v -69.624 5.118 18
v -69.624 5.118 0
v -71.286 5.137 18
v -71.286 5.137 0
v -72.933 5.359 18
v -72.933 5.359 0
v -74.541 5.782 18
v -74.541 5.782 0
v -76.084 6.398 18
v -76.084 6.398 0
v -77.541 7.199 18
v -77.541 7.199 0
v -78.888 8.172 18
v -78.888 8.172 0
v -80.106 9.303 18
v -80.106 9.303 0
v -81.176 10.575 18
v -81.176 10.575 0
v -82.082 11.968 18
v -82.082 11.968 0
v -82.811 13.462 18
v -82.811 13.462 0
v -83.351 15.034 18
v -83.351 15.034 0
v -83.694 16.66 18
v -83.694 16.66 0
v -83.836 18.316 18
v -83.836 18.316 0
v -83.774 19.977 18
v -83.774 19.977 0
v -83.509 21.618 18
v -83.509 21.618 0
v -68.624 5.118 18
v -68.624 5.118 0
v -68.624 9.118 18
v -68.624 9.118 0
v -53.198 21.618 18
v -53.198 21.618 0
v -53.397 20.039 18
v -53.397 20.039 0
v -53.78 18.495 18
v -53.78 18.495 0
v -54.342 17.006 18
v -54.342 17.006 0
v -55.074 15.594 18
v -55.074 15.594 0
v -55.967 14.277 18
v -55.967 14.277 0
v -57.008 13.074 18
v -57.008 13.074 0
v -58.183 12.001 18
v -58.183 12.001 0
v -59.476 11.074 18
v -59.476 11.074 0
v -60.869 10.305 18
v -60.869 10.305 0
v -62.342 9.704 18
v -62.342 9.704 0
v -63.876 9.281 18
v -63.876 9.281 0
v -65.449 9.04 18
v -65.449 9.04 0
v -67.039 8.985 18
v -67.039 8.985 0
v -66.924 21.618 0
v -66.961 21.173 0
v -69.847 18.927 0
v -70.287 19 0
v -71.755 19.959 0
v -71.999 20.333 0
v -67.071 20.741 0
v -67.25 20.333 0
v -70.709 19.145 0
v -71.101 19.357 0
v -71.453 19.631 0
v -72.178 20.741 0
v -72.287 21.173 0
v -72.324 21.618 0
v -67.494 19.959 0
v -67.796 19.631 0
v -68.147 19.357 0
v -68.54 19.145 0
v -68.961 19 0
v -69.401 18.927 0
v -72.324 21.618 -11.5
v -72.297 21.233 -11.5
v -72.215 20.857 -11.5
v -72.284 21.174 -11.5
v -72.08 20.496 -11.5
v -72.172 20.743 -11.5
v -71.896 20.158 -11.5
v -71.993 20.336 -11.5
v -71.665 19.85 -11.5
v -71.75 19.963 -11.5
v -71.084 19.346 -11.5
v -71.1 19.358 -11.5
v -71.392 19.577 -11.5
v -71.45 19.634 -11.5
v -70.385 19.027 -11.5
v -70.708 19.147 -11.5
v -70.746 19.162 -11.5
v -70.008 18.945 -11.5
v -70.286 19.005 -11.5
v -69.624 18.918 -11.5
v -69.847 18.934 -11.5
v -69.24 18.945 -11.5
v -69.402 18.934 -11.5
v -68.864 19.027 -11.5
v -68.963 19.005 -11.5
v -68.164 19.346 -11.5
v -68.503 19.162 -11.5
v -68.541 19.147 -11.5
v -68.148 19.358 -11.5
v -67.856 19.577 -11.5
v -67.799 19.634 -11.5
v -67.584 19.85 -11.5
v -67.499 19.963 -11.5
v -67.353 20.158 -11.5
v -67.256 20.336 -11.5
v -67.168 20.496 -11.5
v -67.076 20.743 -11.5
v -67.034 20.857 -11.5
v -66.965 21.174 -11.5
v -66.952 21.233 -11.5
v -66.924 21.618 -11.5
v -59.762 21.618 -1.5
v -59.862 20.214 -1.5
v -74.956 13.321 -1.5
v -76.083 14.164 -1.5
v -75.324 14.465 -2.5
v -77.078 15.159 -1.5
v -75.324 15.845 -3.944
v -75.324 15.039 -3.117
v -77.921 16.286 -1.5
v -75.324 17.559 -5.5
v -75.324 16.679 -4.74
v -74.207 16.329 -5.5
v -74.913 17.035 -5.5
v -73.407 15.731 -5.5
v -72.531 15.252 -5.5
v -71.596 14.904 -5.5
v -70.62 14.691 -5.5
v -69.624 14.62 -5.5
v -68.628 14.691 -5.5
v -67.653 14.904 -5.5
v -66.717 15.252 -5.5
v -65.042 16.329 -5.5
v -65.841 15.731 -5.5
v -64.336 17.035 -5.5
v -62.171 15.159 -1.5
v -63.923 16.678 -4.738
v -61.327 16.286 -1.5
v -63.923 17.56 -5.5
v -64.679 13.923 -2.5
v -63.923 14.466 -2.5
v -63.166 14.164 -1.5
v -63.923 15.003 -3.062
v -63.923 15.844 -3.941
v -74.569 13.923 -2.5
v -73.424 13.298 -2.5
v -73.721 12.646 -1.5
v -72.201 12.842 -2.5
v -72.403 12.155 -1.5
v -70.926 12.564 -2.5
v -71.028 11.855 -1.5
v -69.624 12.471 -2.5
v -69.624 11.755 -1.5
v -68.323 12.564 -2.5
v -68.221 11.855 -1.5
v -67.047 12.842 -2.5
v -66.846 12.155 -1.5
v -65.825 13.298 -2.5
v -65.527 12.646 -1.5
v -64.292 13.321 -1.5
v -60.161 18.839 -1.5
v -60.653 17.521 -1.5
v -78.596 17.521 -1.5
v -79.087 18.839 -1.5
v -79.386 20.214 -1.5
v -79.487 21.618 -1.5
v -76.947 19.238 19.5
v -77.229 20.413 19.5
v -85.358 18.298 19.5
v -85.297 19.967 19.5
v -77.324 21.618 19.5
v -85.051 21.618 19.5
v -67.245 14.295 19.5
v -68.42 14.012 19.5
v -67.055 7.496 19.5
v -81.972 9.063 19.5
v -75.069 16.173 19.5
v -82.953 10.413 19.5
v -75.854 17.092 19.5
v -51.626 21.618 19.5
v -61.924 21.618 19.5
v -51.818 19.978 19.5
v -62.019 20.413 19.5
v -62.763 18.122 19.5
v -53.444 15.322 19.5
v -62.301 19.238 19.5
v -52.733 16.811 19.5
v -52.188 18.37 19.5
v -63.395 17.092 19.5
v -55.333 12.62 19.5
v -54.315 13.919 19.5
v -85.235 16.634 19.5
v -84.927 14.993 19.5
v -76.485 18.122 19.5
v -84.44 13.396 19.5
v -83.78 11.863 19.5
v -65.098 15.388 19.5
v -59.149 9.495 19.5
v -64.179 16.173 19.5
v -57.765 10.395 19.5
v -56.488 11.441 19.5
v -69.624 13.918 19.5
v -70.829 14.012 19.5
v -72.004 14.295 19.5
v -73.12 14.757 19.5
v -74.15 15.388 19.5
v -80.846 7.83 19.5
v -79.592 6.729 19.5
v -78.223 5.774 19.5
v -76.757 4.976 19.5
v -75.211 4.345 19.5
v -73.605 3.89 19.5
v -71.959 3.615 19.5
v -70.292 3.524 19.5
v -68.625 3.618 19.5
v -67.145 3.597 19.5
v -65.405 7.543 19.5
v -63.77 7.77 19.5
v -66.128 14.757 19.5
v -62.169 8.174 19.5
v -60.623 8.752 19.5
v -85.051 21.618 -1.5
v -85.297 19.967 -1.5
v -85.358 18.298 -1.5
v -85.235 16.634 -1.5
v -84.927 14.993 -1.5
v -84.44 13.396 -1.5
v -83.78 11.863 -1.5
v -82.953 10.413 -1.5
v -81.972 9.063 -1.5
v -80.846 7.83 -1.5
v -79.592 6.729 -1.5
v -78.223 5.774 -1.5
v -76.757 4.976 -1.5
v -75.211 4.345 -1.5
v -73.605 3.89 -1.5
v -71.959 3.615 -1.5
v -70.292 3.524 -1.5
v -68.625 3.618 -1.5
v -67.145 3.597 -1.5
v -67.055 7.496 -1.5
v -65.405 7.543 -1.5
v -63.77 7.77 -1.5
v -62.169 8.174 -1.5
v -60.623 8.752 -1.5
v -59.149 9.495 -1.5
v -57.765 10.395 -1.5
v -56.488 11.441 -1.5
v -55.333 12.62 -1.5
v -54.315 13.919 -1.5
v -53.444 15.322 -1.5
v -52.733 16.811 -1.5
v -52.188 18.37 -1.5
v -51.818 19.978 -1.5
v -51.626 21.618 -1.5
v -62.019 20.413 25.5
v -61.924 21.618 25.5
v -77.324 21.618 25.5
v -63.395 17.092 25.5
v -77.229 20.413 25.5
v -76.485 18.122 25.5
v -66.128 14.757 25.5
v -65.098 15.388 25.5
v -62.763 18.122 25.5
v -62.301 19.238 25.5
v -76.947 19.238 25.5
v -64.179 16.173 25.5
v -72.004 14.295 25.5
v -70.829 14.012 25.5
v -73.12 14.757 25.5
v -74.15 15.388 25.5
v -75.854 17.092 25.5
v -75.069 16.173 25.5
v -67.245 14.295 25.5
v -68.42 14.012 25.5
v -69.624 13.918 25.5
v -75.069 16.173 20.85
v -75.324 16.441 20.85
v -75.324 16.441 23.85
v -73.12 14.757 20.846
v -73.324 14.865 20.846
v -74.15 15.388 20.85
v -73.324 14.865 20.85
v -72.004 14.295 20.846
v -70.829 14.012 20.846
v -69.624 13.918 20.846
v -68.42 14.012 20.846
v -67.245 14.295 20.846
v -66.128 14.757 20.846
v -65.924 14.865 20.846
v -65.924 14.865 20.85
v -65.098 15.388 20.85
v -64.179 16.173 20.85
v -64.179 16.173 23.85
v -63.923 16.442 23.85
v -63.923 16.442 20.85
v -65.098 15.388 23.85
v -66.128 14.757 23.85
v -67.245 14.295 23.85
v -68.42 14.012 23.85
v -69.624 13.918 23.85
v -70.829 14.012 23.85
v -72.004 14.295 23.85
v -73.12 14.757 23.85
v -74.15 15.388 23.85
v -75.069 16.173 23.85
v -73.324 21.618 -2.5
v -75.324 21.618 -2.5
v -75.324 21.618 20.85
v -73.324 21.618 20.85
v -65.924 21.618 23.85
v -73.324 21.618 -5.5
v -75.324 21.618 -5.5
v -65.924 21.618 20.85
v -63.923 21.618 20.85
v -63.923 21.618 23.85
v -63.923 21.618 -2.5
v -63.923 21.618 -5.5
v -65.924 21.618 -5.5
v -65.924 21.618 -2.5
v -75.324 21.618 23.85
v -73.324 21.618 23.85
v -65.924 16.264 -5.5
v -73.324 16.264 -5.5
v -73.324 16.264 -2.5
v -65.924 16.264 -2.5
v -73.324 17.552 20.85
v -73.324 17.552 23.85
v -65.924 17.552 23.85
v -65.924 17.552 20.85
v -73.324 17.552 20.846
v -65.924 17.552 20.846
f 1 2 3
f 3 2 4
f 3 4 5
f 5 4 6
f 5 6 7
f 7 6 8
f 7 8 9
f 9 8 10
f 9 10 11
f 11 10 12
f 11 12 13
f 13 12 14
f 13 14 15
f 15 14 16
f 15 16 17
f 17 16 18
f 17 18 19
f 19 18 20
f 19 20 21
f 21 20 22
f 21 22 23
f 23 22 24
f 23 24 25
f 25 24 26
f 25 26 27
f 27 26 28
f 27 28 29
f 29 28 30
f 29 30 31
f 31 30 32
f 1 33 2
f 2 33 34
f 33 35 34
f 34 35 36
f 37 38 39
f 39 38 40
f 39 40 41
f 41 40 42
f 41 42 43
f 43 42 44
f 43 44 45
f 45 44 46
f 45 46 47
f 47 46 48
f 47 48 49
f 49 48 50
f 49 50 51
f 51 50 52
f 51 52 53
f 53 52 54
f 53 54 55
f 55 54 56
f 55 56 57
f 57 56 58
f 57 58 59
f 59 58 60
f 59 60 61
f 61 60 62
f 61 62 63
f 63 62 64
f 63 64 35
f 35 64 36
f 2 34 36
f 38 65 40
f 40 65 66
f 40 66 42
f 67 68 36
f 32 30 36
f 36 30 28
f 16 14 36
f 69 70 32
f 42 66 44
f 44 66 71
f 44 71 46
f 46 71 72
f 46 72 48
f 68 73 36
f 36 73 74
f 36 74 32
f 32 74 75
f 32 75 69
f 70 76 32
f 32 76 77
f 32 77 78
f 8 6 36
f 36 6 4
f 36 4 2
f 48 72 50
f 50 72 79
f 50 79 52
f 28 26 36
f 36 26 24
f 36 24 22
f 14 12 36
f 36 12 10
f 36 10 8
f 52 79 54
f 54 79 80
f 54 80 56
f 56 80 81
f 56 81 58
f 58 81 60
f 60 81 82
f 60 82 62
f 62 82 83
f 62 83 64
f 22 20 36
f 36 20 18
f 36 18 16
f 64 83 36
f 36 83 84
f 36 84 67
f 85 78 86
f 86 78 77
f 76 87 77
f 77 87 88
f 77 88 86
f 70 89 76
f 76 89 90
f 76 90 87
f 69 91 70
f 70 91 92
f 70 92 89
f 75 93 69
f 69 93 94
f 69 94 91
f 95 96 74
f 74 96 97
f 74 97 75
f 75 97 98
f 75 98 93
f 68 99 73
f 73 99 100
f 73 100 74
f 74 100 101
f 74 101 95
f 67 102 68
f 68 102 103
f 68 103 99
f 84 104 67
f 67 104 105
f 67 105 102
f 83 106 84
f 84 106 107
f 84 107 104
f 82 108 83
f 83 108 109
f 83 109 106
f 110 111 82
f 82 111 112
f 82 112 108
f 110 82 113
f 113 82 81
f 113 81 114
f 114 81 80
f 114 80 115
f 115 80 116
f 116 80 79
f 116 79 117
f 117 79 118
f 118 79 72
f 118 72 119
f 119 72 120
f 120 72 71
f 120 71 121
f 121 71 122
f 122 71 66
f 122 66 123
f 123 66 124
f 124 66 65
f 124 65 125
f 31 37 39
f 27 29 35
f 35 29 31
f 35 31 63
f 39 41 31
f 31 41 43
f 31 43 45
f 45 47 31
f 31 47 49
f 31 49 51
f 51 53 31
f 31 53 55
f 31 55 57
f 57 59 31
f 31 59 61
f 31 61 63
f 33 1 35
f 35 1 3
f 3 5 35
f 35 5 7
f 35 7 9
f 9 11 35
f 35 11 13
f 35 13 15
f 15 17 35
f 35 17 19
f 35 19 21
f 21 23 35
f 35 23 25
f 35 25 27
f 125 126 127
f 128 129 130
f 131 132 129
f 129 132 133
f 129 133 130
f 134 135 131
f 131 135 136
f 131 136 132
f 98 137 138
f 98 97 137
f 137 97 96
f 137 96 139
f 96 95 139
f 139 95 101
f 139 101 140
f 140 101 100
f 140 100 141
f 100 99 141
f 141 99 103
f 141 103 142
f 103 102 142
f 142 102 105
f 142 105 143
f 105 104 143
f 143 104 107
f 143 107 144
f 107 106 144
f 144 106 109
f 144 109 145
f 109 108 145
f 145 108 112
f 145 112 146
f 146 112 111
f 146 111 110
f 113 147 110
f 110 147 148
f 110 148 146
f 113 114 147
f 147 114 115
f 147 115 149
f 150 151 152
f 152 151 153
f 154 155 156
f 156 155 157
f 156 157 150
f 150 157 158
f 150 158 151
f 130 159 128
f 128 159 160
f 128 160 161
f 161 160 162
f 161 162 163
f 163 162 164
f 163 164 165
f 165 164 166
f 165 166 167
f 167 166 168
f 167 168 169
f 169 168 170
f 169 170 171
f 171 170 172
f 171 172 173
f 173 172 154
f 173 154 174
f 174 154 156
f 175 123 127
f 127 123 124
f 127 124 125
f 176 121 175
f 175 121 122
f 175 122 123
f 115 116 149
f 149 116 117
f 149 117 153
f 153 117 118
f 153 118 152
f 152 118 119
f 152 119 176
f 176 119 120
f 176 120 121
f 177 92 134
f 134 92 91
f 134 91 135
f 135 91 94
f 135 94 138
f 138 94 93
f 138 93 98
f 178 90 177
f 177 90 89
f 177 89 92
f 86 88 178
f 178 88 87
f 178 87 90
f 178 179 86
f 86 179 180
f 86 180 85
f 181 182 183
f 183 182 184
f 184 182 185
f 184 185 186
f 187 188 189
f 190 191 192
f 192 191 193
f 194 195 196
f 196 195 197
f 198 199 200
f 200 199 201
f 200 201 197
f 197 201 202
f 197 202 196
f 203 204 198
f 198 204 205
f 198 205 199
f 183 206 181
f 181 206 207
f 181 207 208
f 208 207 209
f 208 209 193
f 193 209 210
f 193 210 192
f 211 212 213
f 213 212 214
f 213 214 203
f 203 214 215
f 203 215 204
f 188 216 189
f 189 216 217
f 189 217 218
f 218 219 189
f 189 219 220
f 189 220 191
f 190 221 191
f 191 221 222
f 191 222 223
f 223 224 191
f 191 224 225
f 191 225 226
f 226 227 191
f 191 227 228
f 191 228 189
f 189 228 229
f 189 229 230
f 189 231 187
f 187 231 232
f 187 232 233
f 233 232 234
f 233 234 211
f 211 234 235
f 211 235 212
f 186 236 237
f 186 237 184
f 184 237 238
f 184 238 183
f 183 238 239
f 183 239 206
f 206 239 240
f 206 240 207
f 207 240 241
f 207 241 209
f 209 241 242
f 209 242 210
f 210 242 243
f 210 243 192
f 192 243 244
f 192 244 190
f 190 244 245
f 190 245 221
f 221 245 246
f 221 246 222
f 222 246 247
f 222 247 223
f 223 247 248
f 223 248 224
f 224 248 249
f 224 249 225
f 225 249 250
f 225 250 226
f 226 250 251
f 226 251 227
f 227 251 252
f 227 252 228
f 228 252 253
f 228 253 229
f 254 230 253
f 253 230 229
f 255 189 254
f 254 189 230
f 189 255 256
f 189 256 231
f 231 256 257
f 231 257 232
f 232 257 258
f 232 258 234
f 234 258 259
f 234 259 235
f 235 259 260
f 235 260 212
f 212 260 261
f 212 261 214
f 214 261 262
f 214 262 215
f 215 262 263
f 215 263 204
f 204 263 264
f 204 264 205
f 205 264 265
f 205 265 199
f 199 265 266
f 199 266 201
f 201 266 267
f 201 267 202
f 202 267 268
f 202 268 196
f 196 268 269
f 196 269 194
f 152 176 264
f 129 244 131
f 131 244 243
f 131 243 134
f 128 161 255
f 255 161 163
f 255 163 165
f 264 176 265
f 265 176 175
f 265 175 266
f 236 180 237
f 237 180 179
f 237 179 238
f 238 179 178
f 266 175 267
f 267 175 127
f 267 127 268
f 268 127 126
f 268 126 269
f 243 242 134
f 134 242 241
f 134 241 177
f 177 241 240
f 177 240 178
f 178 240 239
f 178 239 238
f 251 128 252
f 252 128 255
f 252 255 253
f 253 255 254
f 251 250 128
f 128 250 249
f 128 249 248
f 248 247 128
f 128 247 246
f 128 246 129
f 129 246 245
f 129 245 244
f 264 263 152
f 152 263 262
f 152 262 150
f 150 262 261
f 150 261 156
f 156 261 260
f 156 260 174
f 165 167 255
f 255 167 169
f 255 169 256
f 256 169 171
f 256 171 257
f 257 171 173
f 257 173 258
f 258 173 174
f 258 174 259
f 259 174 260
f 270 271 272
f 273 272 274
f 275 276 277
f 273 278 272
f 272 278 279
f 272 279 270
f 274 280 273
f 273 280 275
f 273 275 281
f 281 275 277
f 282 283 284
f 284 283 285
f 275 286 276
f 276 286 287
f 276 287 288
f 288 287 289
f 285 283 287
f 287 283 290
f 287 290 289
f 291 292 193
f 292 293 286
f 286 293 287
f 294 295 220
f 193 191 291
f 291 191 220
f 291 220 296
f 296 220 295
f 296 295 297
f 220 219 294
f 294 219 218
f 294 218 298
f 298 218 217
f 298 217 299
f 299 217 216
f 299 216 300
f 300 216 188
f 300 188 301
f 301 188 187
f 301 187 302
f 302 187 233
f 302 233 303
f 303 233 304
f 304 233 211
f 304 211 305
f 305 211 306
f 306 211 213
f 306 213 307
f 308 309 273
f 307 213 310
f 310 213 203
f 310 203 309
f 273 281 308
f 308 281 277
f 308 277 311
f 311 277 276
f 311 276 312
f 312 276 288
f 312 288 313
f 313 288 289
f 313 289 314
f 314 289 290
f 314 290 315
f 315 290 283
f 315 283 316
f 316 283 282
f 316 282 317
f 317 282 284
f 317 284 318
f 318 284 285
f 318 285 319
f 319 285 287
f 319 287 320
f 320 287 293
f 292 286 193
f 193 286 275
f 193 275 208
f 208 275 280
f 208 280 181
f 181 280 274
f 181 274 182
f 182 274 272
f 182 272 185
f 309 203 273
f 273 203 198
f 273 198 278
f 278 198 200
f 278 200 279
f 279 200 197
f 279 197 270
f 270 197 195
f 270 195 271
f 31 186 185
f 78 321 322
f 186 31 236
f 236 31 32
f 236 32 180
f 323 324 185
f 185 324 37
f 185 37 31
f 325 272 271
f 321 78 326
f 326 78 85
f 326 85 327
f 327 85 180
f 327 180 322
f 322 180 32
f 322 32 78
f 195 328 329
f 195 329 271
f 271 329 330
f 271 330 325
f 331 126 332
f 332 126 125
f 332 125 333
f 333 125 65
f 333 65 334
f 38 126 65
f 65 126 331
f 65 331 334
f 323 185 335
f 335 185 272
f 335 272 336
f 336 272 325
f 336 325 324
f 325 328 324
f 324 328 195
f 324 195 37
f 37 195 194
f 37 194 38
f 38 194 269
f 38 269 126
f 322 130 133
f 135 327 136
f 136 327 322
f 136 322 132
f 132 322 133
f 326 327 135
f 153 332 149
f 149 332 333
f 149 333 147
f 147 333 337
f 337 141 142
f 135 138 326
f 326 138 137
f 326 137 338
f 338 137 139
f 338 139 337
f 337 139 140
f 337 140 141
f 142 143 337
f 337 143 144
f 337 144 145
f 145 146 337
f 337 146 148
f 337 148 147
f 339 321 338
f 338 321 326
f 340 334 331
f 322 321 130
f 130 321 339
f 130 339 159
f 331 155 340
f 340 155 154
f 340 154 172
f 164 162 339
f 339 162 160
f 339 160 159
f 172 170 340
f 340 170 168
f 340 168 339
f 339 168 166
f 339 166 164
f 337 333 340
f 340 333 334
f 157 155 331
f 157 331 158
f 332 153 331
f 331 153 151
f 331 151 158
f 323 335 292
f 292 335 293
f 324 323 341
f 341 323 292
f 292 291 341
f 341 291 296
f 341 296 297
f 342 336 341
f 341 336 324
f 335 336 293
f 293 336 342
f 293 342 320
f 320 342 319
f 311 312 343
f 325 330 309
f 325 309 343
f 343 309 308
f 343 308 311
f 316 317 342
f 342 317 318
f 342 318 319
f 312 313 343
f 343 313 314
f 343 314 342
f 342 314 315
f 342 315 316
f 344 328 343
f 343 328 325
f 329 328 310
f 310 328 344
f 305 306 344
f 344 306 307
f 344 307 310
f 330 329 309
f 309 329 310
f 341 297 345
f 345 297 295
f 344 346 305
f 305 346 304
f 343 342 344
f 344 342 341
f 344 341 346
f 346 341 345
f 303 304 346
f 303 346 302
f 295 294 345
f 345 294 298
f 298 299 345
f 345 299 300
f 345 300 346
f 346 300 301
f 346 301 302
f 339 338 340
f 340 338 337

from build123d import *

# Parameters (mm, degrees)
SALIENTE_EXTRUIR1_DEPTH = 18
SALIENTE_EXTRUIR2_START = 1.5
CROQUIS2_R              = 2.7
SALIENTE_EXTRUIR2_DEPTH = 1.5
SALIENTE_EXTRUIR3_DEPTH = 1.5
CROQUIS6_W              = 5.4
CROQUIS6_H              = 1.181933233
SALIENTE_EXTRUIR7_DEPTH = 10
CROQUIS7_W              = 5.4
CROQUIS7_H              = 10
CORTAR_EXTRUIR2_DEPTH   = 16.5
CROQUIS9_W              = 52.468080771
CROQUIS9_H              = 55.683263094
CORTAR_EXTRUIR3_DEPTH   = 30
CROQUIS10_W             = 2
CROQUIS10_H             = 3
CROQUIS10_W_2           = 2.00103554
CORTAR_EXTRUIR4_DEPTH   = 10
CROQUIS11_W             = 3.003829207
CROQUIS11_H             = 8.377286569
CROQUIS11_W_2           = 3
CROQUIS11_H_2           = 6.580683582
CORTAR_EXTRUIR5_DEPTH   = 7.4


with BuildPart() as part:
    # Croquis1 → Saliente-Extruir1 (new body)
    with BuildSketch(Plane.XY):
        with BuildLine():
            Line((-54.535099114, 31.482780649), (-55.25791247, 32.775048384))
            Line((-55.25791247, 32.775048384), (-58.679569293, 30.903614553))
            ThreePointArc((-58.679569293, 30.903614553), (-72.555259572, 38.768368337), (-85.712228427, 29.752642999))
            Line((-85.712228427, 29.752642999), (-86.469958437, 28.480534403))
            Line((-86.469958437, 28.480534403), (-83.138420786, 26.453009587))
            ThreePointArc((-83.138420786, 26.453009587), (-83.011652218, 10.503932418), (-68.625320614, 3.617525822))
            Line((-68.625320614, 3.617525822), (-67.144777249, 3.597366682))
            Line((-67.144777249, 3.597366682), (-67.054658077, 7.49632533))
            ThreePointArc((-67.054658077, 7.49632533), (-53.305736365, 15.580648714), (-54.535099114, 31.482780649))
        make_face()
        with BuildLine():
            Line((-69.624216052, 5.117649823), (-68.624216052, 5.117649823))
            Line((-68.624216052, 5.117649823), (-68.624216052, 9.117649823))
            ThreePointArc((-68.624216052, 9.117649823), (-55.305921191, 15.218525867), (-55.334796889, 29.867649823))
            Line((-55.334796889, 29.867649823), (-55.834796889, 30.733675227))
            Line((-55.834796889, 30.733675227), (-59.298898504, 28.733675227))
            ThreePointArc((-59.298898504, 28.733675227), (-71.241559574, 37.21721889), (-83.913635214, 29.867649823))
            Line((-83.913635214, 29.867649823), (-84.413635214, 29.001624419))
            Line((-84.413635214, 29.001624419), (-80.949533599, 27.001624419))
            ThreePointArc((-80.949533599, 27.001624419), (-82.325167391, 12.417204713), (-69.624216052, 5.117649823))
        make_face(mode=Mode.SUBTRACT)
    extrude(amount=SALIENTE_EXTRUIR1_DEPTH)

    # Croquis2 → Saliente-Extruir2 (add)
    with BuildSketch(Plane(origin=(0, 0, 0), x_dir=(-1, 0, 0), z_dir=(0, 0, -1)).offset(SALIENTE_EXTRUIR2_START)):
        with BuildLine():
            Line((67.054658077, 7.49632533), (67.144777249, 3.597366682))
            Line((67.144777249, 3.597366682), (68.625320614, 3.617525822))
            ThreePointArc((68.625320614, 3.617525822), (83.011652218, 10.503932418), (83.138420786, 26.453009587))
            Line((83.138420786, 26.453009587), (86.469958437, 28.480534403))
            Line((86.469958437, 28.480534403), (85.712228427, 29.752642999))
            ThreePointArc((85.712228427, 29.752642999), (72.555259572, 38.768368337), (58.679569293, 30.903614553))
            Line((58.679569293, 30.903614553), (55.25791247, 32.775048384))
            Line((55.25791247, 32.775048384), (54.535099114, 31.482780649))
            ThreePointArc((54.535099114, 31.482780649), (53.305736365, 15.580648714), (67.054658077, 7.49632533))
        make_face()
        with Locations((69.624216052, 21.617649823)):
            Circle(CROQUIS2_R, mode=Mode.SUBTRACT)
    extrude(amount=-SALIENTE_EXTRUIR2_DEPTH)

    # Croquis3 → Saliente-Extruir3 (add)
    with BuildSketch(Plane.XY.offset(18)):
        with BuildLine():
            Line((-67.144777249, 3.597366682), (-67.054658077, 7.49632533))
            ThreePointArc((-67.054658077, 7.49632533), (-53.305736365, 15.580648714), (-54.535099114, 31.482780649))
            Line((-54.535099114, 31.482780649), (-55.25791247, 32.775048384))
            Line((-55.25791247, 32.775048384), (-58.679569293, 30.903614553))
            ThreePointArc((-58.679569293, 30.903614553), (-72.555259572, 38.768368337), (-85.712228427, 29.752642999))
            Line((-85.712228427, 29.752642999), (-86.469958437, 28.480534403))
            Line((-86.469958437, 28.480534403), (-83.138420786, 26.453009587))
            ThreePointArc((-83.138420786, 26.453009587), (-83.011652218, 10.503932418), (-68.625320614, 3.617525822))
            Line((-68.625320614, 3.617525822), (-67.144777249, 3.597366682))
        make_face()
    extrude(amount=SALIENTE_EXTRUIR3_DEPTH)

    # Croquis6 → Saliente-Extruir7 (add)
    with BuildSketch(Plane(origin=(0, 0, -1.5), x_dir=(-1, 0, 0), z_dir=(0, 0, -1))):
        with Locations((69.624216052, 21.026683207)):
            Rectangle(CROQUIS6_W, CROQUIS6_H)
    extrude(amount=SALIENTE_EXTRUIR7_DEPTH)

    # Croquis7 → Cortar-Extruir2 (cut)
    with BuildSketch(Plane(origin=(0, 21.617649823, 0), x_dir=(1, 0, 0), z_dir=(0, 1, 0))):
        with Locations((-69.624216052, 6.5)):
            Rectangle(CROQUIS7_W, CROQUIS7_H)
    extrude(amount=-CORTAR_EXTRUIR2_DEPTH, mode=Mode.SUBTRACT)

    # Croquis8 → Revolución1 (revolve)
    with BuildSketch(Plane(origin=(0, 21.617649823, 0), x_dir=(1, 0, 0), z_dir=(0, 1, 0)), mode=Mode.PRIVATE) as revoluci_n1_sk:
        Polygon((-72.324216052, 1.5), (-79.486781688, 1.5), (-72.324216052, 11.5), align=None)
        Polygon((-72.324216052, -19.5), (-69.624216052, -19.5), (-69.624216052, -25.5), (-72.324216052, -25.5), (-77.324216052, -25.5), (-77.324216052, -19.5), align=None)
    revolve(revoluci_n1_sk.sketch.rotate(Axis((-69.624216052, 21.617649823, 19.5), (0, 0, 1)), 180), axis=Axis((-69.624216052, 21.617649823, 19.5), (0, 0, 1)))

    # Croquis9 → Cortar-Extruir3 (cut)
    with BuildSketch(Plane(origin=(0, 21.617649823, 0), x_dir=(1, 0, 0), z_dir=(0, 1, 0))):
        with Locations((-61.70964897, -8.735329994)):
            Rectangle(CROQUIS9_W, CROQUIS9_H)
    extrude(amount=CORTAR_EXTRUIR3_DEPTH, mode=Mode.SUBTRACT)

    # Croquis10 → Cortar-Extruir4 (cut)
    with BuildSketch(Plane(origin=(0, 21.617649823, 0), x_dir=(1, 0, 0), z_dir=(0, 1, 0))):
        with Locations((-74.324216052, 4)):
            Rectangle(CROQUIS10_W, CROQUIS10_H)
        with Locations((-64.923698282, 4)):
            Rectangle(CROQUIS10_W_2, CROQUIS10_H)
        with Locations((-74.324216052, -22.35)):
            Rectangle(CROQUIS10_W, CROQUIS10_H)
        with Locations((-64.923698282, -22.35)):
            Rectangle(CROQUIS10_W_2, CROQUIS10_H)
    extrude(amount=-CORTAR_EXTRUIR4_DEPTH, mode=Mode.SUBTRACT)

    # Croquis11 → Cortar-Extruir5 (cut)
    with BuildSketch(Plane(origin=(-65.924216052, 0, 0), x_dir=(0, 0, -1), z_dir=(1, 0, 0))):
        with Locations((-22.348085397, 13.363371819)):
            Rectangle(CROQUIS11_W, CROQUIS11_H)
        with Locations((4, 12.973671933)):
            Rectangle(CROQUIS11_W_2, CROQUIS11_H_2)
    extrude(amount=-CORTAR_EXTRUIR5_DEPTH, mode=Mode.SUBTRACT)


solid = part.part
